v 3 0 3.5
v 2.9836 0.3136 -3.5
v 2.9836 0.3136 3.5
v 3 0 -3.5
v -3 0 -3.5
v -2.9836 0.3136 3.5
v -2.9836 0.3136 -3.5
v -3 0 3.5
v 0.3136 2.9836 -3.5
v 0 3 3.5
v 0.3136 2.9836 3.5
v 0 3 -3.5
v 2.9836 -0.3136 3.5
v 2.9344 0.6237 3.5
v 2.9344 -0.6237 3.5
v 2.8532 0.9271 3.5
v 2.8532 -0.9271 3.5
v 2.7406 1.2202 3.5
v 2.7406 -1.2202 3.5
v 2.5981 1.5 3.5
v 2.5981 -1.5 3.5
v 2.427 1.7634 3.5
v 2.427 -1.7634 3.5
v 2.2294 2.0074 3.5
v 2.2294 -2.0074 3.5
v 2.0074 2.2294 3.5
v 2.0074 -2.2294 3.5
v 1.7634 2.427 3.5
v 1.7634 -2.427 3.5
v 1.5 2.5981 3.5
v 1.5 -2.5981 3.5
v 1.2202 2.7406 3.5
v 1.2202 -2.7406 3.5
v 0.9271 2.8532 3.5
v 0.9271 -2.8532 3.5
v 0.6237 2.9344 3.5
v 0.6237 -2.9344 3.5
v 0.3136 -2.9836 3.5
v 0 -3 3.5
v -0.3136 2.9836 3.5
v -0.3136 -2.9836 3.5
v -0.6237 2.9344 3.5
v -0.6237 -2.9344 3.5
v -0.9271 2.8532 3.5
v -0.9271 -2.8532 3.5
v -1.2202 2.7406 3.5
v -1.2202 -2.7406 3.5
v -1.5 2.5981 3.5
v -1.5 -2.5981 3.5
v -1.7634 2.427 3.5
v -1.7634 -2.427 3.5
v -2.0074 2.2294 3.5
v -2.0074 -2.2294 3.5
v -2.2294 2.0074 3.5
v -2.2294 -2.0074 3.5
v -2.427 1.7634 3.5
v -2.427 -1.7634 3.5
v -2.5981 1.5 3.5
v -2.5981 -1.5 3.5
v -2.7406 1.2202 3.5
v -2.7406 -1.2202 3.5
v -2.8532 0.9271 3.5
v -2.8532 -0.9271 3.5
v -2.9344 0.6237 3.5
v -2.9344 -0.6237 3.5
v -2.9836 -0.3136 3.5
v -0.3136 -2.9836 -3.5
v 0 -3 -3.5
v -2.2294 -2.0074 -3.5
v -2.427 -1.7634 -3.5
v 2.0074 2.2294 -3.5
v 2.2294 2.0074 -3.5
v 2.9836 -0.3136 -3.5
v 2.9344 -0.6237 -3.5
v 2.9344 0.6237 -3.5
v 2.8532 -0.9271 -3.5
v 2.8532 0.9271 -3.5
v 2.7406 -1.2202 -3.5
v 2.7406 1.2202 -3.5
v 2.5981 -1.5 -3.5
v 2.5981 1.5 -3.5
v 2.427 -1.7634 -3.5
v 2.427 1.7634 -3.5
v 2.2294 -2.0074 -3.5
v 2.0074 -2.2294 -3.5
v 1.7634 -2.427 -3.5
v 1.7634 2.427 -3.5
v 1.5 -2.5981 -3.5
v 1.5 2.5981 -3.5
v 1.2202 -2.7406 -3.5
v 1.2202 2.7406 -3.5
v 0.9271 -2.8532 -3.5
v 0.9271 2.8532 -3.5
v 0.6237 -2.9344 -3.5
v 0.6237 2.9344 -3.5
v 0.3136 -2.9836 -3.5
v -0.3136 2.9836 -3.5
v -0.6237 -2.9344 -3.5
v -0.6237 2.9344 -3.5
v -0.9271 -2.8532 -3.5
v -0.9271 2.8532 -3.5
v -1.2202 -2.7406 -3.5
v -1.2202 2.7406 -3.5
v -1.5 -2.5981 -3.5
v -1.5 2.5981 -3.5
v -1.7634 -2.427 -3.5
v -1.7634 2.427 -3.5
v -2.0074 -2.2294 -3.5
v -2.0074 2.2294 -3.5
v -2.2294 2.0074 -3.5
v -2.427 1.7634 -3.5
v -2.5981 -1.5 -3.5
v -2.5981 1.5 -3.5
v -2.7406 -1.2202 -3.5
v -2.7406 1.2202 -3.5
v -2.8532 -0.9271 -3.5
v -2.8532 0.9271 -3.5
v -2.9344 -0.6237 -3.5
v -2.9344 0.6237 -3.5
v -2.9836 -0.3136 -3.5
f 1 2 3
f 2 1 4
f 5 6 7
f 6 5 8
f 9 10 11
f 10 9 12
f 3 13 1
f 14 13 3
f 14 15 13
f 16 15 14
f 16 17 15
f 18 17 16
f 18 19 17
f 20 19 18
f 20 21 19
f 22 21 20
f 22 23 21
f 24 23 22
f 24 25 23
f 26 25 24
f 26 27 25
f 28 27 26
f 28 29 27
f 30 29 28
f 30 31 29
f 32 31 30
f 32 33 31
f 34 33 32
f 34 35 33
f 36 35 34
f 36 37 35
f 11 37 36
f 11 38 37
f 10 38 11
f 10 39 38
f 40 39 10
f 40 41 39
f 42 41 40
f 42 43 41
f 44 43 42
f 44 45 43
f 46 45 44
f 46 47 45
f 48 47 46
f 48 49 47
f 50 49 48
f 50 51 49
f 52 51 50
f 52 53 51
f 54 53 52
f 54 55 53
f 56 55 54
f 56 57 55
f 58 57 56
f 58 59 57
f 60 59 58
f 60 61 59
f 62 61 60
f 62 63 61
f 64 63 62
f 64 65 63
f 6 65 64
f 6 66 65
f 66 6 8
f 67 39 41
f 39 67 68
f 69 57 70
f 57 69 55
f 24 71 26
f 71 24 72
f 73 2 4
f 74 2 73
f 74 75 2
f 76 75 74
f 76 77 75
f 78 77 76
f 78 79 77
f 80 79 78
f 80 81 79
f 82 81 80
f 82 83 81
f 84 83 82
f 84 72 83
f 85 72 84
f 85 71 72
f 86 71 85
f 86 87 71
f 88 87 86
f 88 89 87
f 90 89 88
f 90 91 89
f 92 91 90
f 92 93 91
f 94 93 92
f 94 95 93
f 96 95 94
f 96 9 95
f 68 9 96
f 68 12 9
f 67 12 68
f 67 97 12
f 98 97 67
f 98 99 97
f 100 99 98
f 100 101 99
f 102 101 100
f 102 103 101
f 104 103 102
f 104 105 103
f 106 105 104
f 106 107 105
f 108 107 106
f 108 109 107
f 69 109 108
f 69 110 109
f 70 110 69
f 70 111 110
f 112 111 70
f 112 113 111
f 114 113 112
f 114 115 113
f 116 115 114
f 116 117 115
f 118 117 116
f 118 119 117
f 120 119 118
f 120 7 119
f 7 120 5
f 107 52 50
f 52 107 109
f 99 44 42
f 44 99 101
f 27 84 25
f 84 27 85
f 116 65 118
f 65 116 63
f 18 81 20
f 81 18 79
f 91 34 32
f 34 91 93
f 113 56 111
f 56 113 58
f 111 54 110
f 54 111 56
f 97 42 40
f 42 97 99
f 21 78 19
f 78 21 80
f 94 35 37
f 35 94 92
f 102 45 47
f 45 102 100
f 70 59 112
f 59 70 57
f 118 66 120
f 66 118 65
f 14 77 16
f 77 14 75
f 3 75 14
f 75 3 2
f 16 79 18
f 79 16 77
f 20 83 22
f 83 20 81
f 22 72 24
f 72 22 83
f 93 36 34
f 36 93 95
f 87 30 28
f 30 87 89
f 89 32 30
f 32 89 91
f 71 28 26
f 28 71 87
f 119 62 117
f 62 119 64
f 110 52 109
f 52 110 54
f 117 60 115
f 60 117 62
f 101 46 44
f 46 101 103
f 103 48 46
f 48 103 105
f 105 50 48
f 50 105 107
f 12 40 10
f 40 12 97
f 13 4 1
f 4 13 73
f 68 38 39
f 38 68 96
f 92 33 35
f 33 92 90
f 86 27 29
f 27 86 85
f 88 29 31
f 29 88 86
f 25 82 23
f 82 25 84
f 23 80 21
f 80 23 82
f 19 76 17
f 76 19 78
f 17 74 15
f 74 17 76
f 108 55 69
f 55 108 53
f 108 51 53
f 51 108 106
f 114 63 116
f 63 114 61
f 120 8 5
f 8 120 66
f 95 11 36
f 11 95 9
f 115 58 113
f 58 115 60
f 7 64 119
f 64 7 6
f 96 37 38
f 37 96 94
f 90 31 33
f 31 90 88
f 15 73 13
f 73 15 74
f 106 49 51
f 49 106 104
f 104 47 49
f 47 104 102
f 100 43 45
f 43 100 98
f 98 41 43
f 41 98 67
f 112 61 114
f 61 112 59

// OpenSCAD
//Platinen Pin ESP32 UNO Wetterstation
//4x

$fn=60;
Rgr = 3; //Radius PIN 
R1kl = 0; //Radius 1 Stift
R2kl = 0; //Radius 2 Stift
Sh = 7;       //Sockelhöhe


cylinder(h = Sh, r1=Rgr , r2=Rgr , center = true);
translate(v = [0, 0, Sh/2])
cylinder(h = 3, r1 = R1kl, r2 = R2kl, center = true);
